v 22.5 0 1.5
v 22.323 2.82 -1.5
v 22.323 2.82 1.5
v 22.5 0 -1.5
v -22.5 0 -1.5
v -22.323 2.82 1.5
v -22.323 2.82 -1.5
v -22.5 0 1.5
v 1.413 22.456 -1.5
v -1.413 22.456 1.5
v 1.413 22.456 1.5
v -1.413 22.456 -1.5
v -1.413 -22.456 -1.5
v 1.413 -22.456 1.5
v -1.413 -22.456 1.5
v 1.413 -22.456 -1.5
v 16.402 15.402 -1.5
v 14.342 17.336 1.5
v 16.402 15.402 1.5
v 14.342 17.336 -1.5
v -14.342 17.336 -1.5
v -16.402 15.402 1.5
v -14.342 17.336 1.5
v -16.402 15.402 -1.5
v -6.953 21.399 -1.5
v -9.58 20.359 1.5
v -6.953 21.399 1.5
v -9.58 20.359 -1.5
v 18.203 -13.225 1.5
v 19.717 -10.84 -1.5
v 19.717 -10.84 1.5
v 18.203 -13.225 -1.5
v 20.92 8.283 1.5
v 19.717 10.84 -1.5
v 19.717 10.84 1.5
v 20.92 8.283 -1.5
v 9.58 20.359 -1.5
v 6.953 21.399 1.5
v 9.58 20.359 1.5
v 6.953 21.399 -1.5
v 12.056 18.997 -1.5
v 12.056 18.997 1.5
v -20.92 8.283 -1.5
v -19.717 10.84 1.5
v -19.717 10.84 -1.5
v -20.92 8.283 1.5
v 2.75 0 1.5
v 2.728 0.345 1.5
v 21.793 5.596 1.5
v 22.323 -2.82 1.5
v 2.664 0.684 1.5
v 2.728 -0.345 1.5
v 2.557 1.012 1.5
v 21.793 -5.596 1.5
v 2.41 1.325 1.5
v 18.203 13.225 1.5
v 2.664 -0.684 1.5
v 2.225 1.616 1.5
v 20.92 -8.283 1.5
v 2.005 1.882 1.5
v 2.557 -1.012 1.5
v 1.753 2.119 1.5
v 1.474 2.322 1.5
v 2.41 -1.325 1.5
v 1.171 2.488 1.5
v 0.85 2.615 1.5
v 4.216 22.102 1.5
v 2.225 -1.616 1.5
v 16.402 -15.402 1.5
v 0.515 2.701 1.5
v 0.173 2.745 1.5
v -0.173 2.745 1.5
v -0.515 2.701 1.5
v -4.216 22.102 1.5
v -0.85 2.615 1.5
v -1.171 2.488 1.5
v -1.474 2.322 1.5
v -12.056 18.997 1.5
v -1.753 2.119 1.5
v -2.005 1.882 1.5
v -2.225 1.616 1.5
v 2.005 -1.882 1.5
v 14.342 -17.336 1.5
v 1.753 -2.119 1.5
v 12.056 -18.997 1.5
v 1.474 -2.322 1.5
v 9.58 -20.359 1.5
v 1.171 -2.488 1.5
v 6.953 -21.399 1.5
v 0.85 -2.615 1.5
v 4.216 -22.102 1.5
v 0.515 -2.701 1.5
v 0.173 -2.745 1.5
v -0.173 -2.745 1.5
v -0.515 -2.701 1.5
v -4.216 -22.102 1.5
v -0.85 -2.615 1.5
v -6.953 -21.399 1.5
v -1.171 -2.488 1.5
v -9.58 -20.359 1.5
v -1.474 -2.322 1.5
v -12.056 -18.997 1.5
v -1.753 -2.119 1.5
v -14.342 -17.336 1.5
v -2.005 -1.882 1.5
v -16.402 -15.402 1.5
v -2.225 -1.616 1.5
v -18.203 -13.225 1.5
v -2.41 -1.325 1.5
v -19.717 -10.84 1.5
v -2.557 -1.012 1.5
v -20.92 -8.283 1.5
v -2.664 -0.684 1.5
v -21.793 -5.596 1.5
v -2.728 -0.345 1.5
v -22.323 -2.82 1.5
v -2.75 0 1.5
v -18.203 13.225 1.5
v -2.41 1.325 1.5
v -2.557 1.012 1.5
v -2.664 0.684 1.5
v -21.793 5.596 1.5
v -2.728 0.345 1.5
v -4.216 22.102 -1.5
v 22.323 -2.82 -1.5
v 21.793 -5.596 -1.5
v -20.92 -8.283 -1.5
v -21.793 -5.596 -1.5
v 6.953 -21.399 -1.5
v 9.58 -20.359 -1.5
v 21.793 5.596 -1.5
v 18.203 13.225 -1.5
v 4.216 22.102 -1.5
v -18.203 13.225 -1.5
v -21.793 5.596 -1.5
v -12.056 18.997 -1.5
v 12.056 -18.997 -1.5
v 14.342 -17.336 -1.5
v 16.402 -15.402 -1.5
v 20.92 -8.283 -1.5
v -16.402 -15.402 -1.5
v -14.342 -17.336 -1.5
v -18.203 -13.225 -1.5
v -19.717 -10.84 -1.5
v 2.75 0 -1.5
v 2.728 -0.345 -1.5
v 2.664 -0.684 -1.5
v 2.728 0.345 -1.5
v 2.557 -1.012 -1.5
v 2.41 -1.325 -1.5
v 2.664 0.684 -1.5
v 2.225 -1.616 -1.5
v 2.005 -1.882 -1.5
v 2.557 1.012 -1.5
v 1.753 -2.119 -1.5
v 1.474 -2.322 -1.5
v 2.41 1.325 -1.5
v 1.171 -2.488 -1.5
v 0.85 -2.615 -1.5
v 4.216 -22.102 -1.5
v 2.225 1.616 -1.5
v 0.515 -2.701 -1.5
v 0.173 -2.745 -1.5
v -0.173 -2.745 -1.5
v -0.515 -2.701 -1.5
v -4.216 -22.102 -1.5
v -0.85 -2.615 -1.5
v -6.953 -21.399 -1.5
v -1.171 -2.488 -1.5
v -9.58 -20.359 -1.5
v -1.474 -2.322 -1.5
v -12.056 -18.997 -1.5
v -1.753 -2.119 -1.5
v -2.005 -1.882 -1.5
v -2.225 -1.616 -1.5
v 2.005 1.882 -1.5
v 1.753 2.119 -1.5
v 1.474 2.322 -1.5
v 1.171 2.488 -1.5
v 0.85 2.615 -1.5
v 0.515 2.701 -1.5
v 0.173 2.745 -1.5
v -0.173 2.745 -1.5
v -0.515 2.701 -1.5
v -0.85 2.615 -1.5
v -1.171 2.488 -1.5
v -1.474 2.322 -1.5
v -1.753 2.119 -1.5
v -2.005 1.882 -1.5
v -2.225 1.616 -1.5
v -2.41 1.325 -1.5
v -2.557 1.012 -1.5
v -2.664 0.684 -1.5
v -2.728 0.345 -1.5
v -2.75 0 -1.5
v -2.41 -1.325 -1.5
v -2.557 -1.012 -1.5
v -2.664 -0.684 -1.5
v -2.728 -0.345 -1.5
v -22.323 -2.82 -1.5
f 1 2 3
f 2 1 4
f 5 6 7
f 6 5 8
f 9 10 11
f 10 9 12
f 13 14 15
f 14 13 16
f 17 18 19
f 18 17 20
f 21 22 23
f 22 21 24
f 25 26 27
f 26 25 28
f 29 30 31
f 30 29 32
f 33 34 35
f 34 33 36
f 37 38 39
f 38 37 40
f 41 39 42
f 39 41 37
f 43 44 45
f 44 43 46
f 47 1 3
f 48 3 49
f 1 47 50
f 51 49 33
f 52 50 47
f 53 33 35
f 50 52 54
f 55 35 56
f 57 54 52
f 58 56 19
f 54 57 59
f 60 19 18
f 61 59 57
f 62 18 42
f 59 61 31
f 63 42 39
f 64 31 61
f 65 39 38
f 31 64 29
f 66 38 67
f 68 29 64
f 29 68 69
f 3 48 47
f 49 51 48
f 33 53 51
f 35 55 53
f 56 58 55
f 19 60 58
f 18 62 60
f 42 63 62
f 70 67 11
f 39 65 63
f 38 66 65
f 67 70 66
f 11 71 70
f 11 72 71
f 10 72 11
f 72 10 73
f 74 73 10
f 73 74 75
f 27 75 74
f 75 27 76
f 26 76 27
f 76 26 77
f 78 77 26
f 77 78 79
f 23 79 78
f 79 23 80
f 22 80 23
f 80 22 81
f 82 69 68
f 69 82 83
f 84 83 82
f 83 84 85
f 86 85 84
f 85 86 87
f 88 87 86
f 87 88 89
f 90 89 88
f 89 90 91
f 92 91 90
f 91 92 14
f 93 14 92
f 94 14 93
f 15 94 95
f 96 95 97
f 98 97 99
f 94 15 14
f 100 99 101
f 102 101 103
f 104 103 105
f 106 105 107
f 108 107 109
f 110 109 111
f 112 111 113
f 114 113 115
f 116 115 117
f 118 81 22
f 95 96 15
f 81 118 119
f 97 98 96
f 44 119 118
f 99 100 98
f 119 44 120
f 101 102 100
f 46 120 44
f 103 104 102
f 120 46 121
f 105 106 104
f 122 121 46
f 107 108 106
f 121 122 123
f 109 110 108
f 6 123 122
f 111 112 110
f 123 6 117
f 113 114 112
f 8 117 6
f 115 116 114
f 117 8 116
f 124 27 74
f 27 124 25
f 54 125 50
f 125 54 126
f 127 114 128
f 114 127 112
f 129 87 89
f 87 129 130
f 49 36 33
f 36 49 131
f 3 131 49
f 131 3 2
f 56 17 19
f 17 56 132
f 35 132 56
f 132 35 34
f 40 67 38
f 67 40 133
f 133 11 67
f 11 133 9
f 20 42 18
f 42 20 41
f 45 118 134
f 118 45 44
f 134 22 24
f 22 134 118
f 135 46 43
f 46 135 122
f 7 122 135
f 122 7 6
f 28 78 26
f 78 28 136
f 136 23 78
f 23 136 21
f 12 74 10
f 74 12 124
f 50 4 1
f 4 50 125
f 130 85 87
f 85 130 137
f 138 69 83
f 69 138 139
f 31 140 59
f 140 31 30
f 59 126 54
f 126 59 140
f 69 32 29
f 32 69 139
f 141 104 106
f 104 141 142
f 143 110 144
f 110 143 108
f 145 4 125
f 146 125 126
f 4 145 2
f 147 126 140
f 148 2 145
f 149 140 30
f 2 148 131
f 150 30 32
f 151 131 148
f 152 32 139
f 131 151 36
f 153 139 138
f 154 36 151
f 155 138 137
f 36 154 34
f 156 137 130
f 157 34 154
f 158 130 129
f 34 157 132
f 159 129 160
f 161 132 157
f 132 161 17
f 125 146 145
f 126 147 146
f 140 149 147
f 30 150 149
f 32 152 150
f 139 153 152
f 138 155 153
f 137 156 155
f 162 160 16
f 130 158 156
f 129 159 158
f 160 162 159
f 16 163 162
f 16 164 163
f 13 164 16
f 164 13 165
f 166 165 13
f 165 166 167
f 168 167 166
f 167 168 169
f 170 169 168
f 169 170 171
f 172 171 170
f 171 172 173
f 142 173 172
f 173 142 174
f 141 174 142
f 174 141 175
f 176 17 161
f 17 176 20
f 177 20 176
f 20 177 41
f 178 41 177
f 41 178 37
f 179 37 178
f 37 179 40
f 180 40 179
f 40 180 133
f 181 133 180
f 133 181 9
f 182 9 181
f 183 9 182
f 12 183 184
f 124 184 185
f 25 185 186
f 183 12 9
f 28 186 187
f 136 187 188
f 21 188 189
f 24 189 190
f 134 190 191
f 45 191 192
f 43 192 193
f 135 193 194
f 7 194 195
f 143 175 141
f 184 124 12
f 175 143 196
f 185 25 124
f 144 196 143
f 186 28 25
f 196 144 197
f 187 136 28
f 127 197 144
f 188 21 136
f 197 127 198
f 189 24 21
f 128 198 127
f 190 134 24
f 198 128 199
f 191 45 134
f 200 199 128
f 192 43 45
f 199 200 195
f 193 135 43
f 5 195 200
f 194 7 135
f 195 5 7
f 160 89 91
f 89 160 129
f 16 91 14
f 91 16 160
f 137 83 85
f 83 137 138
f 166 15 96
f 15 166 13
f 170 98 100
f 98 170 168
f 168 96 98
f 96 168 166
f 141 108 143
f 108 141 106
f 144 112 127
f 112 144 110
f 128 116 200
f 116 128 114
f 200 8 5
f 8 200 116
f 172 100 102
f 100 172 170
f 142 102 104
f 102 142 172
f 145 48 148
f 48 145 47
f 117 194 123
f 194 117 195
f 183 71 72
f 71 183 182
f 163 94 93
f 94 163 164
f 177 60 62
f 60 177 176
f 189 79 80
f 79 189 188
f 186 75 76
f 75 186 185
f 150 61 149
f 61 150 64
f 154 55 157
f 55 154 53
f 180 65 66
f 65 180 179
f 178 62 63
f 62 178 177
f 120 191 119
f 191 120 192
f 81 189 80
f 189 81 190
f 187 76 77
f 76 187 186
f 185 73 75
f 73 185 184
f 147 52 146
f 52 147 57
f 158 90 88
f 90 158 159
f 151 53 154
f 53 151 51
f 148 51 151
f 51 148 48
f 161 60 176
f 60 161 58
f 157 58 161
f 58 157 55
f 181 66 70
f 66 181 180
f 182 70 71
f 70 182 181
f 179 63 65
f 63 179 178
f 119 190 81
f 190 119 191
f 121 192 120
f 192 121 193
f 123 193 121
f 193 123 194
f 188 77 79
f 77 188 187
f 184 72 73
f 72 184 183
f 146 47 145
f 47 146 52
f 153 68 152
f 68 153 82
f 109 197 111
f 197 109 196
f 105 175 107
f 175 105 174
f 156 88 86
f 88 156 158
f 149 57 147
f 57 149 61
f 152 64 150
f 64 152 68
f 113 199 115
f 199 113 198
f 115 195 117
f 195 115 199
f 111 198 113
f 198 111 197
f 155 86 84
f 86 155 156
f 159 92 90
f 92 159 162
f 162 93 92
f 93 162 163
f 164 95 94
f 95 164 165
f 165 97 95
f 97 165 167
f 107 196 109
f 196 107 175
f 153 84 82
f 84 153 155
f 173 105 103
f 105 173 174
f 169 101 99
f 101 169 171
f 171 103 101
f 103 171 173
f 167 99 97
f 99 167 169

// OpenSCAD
$fn = 50;


difference() {
	union() {
		translate(v = [0, 0, -1.5000000000]) {
			cylinder(h = 3, r = 22.5000000000);
		}
	}
	union() {
		translate(v = [0, 0, -100.0000000000]) {
			cylinder(h = 200, r = 2.7500000000);
		}
	}
}
